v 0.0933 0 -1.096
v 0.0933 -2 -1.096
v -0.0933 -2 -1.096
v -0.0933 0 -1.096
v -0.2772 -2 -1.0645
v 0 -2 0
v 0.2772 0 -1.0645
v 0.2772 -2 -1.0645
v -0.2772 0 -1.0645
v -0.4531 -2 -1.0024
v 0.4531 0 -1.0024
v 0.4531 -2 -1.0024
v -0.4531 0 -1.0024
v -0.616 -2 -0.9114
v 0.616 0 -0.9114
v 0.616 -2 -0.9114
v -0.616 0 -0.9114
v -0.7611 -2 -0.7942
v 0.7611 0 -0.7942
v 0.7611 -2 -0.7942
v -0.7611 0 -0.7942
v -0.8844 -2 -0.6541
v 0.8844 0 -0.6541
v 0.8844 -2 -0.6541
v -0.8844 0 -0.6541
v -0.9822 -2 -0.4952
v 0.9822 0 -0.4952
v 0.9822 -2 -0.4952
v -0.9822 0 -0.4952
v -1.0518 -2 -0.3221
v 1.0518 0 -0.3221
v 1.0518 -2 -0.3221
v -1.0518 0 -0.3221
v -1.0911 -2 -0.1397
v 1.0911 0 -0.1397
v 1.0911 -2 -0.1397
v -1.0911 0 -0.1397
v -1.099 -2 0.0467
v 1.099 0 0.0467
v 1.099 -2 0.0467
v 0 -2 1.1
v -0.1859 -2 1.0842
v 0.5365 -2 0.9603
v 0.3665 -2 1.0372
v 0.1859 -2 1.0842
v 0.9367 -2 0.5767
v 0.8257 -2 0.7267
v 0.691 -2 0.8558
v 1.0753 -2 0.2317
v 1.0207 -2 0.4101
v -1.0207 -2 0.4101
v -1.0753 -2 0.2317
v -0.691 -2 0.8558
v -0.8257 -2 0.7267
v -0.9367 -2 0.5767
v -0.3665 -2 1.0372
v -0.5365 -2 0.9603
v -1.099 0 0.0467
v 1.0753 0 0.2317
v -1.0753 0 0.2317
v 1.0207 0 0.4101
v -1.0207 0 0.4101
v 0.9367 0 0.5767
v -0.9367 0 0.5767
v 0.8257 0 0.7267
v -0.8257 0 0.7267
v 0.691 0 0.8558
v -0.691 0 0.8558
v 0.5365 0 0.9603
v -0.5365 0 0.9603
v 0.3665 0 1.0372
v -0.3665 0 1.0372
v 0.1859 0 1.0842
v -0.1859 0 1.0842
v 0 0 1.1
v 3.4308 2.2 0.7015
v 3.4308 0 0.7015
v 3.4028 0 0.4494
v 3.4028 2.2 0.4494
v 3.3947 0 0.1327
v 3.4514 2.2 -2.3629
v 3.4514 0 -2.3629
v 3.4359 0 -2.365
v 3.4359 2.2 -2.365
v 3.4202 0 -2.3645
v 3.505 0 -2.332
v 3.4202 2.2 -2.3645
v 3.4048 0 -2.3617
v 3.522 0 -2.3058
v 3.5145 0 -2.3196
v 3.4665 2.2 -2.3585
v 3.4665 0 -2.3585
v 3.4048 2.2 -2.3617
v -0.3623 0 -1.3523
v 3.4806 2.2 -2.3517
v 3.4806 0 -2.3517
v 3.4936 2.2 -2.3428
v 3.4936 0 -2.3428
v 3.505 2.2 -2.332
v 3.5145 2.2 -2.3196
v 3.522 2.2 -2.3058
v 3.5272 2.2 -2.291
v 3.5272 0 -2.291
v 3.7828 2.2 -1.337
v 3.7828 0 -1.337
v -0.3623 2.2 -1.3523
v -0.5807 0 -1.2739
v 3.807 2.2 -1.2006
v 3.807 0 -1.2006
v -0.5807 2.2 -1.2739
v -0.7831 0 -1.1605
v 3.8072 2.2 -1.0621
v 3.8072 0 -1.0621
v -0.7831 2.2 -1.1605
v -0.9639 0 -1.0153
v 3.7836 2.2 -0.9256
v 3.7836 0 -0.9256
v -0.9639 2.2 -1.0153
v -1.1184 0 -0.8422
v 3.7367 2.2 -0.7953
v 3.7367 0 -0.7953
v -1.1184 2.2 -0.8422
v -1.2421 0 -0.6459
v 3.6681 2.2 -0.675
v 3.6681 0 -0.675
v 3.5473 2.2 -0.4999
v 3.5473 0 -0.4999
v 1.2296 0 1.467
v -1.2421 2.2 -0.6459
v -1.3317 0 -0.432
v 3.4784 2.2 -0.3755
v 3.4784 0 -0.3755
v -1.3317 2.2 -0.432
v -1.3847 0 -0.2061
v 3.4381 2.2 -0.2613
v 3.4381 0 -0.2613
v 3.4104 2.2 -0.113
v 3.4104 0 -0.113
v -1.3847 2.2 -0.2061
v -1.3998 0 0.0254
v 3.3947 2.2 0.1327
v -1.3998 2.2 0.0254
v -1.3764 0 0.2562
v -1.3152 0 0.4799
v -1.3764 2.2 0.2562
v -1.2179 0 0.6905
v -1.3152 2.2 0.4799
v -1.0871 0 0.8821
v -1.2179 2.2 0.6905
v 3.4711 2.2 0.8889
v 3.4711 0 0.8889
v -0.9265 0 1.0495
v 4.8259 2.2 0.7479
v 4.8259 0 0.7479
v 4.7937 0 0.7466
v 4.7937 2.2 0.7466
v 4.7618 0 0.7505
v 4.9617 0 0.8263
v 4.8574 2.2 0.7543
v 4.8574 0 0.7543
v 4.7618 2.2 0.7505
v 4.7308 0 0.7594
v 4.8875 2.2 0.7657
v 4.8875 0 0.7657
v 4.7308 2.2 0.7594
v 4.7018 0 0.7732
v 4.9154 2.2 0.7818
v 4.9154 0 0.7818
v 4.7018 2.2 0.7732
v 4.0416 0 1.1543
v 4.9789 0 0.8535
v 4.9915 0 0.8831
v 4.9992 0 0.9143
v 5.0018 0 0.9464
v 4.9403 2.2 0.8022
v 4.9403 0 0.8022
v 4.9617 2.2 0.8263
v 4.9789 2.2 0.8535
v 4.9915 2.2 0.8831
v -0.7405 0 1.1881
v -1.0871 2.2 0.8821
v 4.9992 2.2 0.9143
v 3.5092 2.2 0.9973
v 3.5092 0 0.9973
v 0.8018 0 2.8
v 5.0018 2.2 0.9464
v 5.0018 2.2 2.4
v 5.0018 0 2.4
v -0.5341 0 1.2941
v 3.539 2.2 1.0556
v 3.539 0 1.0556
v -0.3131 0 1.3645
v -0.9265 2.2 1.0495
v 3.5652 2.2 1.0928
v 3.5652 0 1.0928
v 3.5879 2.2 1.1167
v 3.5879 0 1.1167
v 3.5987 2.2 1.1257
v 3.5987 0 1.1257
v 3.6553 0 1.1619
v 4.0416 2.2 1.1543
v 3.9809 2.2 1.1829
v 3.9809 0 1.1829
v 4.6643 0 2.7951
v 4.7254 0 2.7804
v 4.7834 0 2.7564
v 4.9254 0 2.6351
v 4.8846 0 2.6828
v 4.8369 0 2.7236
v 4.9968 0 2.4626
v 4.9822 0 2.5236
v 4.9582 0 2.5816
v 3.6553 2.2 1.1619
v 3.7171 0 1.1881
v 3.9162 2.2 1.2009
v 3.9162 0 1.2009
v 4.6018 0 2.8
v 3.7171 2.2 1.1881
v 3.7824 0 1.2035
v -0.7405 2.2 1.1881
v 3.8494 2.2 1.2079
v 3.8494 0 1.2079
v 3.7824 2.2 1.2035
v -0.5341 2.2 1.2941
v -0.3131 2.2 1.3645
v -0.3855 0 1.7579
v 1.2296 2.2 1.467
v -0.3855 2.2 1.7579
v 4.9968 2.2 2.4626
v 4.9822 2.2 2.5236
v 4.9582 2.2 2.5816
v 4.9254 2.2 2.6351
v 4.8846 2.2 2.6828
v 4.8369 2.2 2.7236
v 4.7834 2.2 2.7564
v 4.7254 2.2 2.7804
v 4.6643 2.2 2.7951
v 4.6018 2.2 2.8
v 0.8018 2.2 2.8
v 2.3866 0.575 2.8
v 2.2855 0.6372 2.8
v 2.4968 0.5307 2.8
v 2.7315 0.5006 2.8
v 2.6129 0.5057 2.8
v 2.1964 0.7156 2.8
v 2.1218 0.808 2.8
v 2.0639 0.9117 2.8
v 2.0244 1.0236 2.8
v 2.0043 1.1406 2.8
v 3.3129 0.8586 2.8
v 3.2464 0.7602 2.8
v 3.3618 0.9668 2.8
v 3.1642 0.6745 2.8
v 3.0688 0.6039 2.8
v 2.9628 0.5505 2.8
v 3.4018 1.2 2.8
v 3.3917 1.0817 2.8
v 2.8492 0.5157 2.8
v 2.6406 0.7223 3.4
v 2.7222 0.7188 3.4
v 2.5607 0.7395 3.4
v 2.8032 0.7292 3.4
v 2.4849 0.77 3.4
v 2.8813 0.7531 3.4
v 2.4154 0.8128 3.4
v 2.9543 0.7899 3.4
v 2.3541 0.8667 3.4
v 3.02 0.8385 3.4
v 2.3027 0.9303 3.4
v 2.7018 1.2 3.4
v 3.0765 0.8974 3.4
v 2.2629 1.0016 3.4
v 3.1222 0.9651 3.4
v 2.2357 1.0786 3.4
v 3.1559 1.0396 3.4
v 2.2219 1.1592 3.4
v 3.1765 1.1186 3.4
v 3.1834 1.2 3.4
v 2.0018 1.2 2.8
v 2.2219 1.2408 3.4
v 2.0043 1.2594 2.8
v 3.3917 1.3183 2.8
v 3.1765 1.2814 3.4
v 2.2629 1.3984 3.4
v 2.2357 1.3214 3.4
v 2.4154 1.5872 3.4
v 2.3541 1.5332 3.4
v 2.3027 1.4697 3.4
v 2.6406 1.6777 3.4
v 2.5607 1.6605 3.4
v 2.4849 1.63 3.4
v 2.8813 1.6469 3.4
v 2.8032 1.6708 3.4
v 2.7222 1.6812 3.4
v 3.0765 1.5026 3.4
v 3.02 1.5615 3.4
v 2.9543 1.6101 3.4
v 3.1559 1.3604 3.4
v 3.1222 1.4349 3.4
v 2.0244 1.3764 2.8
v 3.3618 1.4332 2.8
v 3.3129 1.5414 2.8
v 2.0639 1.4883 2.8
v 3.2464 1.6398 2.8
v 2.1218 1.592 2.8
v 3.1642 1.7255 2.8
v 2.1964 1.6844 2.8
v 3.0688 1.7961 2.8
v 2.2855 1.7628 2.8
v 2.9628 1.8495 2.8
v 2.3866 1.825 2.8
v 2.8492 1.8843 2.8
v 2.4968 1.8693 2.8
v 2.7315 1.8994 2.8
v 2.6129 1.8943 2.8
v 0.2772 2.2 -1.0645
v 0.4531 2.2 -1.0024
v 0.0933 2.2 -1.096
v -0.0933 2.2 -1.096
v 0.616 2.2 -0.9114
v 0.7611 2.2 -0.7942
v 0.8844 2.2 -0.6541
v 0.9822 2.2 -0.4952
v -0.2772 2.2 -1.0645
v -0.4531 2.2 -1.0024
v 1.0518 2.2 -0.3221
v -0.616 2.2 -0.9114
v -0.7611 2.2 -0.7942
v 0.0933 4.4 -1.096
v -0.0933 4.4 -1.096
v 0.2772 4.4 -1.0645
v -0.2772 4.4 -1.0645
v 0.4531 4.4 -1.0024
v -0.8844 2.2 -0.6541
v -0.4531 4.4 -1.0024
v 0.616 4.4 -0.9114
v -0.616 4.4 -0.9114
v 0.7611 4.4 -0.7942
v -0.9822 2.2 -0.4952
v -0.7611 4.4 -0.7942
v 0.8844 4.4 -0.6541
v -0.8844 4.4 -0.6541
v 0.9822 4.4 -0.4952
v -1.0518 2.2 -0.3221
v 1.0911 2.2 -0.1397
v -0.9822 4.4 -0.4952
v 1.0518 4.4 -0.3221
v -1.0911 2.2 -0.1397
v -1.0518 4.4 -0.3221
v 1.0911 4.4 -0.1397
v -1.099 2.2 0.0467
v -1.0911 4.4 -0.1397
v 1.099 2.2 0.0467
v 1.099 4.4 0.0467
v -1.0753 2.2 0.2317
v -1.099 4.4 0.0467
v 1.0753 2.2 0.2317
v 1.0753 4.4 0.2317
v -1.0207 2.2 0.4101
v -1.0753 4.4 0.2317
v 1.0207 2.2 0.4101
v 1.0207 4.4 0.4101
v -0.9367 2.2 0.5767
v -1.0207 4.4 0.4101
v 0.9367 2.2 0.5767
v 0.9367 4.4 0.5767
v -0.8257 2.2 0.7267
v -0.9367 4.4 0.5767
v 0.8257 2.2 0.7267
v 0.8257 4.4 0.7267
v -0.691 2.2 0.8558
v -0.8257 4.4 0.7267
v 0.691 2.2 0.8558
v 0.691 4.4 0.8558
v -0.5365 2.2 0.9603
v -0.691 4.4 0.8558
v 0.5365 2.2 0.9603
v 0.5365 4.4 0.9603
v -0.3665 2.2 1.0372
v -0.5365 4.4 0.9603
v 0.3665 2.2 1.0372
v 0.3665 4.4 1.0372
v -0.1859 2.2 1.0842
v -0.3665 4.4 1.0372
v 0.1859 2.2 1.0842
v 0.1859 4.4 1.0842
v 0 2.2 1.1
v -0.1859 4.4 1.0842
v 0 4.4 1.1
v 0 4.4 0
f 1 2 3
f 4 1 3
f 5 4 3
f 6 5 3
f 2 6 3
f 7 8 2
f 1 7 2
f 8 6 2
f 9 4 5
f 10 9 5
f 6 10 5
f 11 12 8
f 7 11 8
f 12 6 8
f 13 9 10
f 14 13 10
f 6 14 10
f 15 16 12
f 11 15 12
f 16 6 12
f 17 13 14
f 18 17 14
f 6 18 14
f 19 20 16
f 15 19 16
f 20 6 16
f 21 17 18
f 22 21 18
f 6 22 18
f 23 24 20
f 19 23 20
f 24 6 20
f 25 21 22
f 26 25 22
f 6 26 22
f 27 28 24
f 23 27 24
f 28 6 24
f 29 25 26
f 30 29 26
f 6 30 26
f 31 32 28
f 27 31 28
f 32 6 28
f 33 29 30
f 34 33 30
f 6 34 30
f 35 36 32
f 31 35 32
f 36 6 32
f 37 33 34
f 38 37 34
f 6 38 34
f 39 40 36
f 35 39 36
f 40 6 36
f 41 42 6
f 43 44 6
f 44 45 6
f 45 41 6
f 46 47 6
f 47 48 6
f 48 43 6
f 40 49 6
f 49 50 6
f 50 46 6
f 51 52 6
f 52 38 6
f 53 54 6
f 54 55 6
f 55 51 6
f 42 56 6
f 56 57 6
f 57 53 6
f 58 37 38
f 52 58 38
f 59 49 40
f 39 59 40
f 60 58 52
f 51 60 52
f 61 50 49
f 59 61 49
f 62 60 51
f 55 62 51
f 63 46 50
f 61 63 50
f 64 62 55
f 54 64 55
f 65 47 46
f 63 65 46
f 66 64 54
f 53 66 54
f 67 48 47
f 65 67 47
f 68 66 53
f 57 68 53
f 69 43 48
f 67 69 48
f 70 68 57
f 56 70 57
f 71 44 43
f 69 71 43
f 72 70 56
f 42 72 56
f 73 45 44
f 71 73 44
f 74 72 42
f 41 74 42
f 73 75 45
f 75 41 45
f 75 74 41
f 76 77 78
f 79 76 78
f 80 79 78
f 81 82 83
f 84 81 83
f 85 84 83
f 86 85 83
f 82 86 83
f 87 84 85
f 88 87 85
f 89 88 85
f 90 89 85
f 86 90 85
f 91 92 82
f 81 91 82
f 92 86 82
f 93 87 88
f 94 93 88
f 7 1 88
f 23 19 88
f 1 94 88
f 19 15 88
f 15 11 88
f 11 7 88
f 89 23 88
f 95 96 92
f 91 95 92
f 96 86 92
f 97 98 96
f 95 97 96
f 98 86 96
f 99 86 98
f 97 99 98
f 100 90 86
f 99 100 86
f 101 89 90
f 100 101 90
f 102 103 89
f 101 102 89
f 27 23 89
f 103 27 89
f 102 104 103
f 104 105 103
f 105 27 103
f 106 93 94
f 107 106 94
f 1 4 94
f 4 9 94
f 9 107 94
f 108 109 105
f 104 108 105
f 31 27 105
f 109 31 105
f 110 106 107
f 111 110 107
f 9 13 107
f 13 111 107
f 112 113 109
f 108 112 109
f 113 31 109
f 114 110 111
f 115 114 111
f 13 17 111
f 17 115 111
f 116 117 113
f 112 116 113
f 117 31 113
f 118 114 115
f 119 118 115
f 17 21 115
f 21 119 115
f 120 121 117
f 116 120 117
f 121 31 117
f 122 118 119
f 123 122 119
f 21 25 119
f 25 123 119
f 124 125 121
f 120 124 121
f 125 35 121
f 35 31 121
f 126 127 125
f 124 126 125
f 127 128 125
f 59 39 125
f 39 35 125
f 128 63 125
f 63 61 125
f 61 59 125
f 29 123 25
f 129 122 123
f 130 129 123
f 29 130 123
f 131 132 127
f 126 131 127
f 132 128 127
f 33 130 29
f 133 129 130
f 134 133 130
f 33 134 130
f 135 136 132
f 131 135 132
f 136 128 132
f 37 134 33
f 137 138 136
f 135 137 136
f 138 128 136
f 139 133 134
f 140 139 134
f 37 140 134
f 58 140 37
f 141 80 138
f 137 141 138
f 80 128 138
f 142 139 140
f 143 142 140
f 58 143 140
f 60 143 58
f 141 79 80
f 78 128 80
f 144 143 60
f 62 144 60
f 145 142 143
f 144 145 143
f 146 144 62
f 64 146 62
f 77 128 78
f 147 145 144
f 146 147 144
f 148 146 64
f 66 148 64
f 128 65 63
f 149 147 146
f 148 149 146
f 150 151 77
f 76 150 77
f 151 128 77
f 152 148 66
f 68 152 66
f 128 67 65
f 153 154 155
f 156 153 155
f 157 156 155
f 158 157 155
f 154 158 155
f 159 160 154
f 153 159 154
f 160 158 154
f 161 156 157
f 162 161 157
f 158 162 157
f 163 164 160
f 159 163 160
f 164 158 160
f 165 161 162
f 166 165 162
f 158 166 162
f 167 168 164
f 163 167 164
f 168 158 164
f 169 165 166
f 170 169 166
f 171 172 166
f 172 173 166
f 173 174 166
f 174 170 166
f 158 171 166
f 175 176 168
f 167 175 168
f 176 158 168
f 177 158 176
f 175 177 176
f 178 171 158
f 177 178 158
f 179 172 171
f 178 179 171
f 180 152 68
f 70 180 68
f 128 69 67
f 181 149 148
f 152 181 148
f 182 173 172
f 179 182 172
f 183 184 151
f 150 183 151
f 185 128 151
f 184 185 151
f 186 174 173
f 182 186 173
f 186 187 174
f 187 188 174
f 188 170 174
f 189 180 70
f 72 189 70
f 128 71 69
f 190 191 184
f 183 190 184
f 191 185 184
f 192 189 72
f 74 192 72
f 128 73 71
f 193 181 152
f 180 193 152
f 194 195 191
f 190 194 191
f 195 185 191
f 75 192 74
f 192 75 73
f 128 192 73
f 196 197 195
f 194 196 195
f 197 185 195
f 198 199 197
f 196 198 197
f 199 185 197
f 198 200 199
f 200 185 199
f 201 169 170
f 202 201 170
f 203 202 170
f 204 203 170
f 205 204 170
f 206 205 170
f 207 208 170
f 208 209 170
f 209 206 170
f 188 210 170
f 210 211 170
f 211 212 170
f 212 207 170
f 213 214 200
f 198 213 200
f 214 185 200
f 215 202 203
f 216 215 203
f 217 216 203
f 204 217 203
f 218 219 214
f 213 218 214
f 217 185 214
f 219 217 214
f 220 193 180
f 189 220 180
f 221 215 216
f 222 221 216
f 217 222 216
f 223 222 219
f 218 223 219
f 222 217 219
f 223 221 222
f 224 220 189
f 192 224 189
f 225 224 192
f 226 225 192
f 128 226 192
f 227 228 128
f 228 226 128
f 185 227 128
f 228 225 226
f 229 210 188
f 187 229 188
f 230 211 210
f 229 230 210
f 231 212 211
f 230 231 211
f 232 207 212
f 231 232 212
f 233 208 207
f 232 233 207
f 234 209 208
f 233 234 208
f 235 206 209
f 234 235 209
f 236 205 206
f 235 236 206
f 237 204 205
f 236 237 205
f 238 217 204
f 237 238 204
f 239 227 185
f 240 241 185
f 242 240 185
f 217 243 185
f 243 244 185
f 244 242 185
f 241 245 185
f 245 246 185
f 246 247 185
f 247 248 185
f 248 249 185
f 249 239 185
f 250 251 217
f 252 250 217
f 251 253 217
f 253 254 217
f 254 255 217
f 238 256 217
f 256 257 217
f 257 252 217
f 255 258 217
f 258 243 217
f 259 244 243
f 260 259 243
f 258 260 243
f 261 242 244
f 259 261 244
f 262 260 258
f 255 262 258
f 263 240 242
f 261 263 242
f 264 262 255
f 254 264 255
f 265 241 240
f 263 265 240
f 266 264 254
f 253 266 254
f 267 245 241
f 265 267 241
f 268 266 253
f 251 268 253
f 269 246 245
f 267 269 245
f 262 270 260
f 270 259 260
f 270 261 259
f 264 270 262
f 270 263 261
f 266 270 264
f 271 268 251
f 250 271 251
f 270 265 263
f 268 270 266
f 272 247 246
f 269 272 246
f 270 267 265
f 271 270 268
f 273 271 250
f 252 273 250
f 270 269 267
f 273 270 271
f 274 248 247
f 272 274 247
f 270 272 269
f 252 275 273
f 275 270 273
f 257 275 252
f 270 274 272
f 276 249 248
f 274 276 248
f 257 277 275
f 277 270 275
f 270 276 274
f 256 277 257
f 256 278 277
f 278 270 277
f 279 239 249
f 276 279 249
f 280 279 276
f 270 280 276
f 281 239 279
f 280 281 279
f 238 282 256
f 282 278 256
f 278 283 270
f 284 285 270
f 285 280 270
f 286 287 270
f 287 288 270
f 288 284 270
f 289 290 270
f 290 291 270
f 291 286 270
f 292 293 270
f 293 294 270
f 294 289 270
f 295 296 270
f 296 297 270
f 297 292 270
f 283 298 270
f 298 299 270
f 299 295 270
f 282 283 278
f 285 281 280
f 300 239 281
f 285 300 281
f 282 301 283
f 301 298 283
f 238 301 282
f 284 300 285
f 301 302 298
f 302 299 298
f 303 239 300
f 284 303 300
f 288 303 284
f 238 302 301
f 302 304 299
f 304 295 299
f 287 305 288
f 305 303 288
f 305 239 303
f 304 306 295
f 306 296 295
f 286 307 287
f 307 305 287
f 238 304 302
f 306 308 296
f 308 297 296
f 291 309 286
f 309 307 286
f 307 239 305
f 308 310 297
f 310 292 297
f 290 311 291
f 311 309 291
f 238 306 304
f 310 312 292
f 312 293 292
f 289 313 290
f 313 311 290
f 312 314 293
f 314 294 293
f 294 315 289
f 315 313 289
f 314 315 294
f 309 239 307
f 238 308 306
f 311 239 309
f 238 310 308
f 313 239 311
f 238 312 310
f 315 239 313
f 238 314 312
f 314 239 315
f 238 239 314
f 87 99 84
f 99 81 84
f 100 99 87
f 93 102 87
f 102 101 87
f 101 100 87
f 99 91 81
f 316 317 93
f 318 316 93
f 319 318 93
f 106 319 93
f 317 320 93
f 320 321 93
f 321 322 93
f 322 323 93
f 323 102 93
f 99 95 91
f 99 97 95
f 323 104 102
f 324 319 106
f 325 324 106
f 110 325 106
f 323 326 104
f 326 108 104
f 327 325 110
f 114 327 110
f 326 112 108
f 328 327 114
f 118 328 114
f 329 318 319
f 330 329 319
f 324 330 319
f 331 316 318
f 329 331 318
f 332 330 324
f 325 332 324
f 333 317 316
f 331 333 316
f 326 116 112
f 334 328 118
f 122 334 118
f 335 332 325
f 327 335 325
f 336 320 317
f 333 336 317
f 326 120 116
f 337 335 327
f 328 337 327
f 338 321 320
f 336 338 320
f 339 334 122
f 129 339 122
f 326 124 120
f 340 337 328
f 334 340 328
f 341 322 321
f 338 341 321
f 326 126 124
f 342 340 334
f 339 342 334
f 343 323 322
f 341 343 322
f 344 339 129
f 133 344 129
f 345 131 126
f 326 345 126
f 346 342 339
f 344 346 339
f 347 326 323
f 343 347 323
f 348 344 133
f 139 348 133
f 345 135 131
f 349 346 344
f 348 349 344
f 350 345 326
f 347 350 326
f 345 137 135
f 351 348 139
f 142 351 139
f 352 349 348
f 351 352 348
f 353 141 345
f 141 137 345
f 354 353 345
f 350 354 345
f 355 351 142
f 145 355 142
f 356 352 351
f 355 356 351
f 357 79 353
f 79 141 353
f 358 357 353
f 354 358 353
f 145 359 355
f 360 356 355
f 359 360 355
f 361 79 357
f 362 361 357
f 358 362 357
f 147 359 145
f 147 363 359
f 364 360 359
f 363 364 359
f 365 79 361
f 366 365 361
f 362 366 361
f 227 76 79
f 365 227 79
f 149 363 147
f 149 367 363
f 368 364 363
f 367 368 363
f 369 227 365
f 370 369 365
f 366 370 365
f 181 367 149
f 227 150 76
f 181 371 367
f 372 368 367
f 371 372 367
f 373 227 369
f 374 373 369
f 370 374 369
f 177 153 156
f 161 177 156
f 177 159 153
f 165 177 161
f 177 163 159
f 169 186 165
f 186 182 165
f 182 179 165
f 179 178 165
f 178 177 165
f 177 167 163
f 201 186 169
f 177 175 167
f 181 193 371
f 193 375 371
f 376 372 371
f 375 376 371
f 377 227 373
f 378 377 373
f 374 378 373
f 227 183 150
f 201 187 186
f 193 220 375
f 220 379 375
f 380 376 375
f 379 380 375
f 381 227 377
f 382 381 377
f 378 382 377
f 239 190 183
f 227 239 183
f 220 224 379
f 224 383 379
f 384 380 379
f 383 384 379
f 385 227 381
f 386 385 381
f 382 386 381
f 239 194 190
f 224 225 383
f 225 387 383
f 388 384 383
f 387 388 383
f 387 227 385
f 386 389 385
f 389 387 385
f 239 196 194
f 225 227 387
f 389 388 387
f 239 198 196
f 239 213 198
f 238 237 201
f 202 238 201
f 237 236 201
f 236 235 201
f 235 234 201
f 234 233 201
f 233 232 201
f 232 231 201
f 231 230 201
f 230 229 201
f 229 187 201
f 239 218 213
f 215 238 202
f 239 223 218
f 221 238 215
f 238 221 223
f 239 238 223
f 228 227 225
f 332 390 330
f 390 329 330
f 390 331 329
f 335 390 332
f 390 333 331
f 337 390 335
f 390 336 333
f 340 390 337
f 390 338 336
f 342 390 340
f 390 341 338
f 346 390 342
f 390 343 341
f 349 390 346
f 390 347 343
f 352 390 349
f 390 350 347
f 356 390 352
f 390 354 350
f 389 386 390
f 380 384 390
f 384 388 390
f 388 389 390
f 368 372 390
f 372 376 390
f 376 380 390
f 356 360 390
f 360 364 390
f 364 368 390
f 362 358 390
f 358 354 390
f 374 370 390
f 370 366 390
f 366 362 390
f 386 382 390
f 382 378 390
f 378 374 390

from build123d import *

# Parameters (mm, degrees)
BOSS_EXTRUDE1_DEPTH      = 2.2
BOSS_EXTRUDE2_DEPTH      = 4.4
BOSS_EXTRUDE2_DEPTH_BACK = 2
SKETCH1_3_R              = 1.1
SKETCH2_R                = 0.7
BOSS_EXTRUDE3_DEPTH      = 0.6
BOSS_EXTRUDE3_TAPER      = 20


with BuildPart() as part:
    # Sketch1 → Boss-Extrude1 (new body)
    with BuildSketch(Plane(origin=(0, 0, 0), x_dir=(1, 0, 0), z_dir=(0, 1, 0))):
        with BuildLine():
            Line((3.782845085, 1.337043166), (3.527238547, 2.290979755))
            ThreePointArc((3.527238547, 2.290979755), (3.480645964, 2.35170039), (3.404764059, 2.361690433))
            Line((3.404764059, 2.361690433), (-0.362346663, 1.352296157))
            ThreePointArc((-0.362346663, 1.352296157), (-1.399770195, -0.025365361), (-0.313114699, -1.364536253))
            Line((-0.313114699, -1.364536253), (-0.385495815, -1.757932966))
            Line((-0.385495815, -1.757932966), (1.229595775, -1.466971493))
            Line((1.229595775, -1.466971493), (0.801769877, -2.8))
            Line((0.801769877, -2.8), (4.601769877, -2.8))
            ThreePointArc((4.601769877, -2.8), (4.884612589, -2.682842712), (5.001769877, -2.4))
            Line((5.001769877, -2.4), (5.001769877, -0.946410162))
            ThreePointArc((5.001769877, -0.946410162), (4.901769877, -0.773205081), (4.701769877, -0.773205081))
            Line((4.701769877, -0.773205081), (4.041625762, -1.154339463))
            ThreePointArc((4.041625762, -1.154339463), (3.81583188, -1.20709678), (3.598705744, -1.125718327))
            add(Edge.make_bspline(
                [(3.668101763, 0.674971994), (3.507811171, 0.443176193), (3.337919583, 0.271573974), (3.416349663, -0.986324141), (3.598705744, -1.125718327)],
                knots=[0.076223888, 0.076223888, 0.076223888, 0.076223888, 0.275181008, 0.474138129, 0.474138129, 0.474138129, 0.474138129], degree=3))
            ThreePointArc((3.668101763, 0.674971994), (3.798353982, 0.993376676), (3.782845085, 1.337043166))
        make_face()
    extrude(amount=BOSS_EXTRUDE1_DEPTH)

    # Sketch1<3> → Boss-Extrude2 (add, two sides: drawn at the far end of the back side and taken through both)
    with BuildSketch(Plane(origin=(0, 0, 0), x_dir=(1, 0, 0), z_dir=(0, 1, 0)).offset(-BOSS_EXTRUDE2_DEPTH_BACK)):
        with Locations(Location((0, 0, 0), (0, 0, 270))):
            Circle(SKETCH1_3_R)
    extrude(amount=BOSS_EXTRUDE2_DEPTH + BOSS_EXTRUDE2_DEPTH_BACK)

    # Sketch2 → Boss-Extrude3 (add)
    with BuildSketch(Plane.XY.offset(2.8)):
        with Locations((2.701769877, 1.2)):
            Circle(SKETCH2_R)
    extrude(amount=BOSS_EXTRUDE3_DEPTH, taper=BOSS_EXTRUDE3_TAPER)


solid = part.part
